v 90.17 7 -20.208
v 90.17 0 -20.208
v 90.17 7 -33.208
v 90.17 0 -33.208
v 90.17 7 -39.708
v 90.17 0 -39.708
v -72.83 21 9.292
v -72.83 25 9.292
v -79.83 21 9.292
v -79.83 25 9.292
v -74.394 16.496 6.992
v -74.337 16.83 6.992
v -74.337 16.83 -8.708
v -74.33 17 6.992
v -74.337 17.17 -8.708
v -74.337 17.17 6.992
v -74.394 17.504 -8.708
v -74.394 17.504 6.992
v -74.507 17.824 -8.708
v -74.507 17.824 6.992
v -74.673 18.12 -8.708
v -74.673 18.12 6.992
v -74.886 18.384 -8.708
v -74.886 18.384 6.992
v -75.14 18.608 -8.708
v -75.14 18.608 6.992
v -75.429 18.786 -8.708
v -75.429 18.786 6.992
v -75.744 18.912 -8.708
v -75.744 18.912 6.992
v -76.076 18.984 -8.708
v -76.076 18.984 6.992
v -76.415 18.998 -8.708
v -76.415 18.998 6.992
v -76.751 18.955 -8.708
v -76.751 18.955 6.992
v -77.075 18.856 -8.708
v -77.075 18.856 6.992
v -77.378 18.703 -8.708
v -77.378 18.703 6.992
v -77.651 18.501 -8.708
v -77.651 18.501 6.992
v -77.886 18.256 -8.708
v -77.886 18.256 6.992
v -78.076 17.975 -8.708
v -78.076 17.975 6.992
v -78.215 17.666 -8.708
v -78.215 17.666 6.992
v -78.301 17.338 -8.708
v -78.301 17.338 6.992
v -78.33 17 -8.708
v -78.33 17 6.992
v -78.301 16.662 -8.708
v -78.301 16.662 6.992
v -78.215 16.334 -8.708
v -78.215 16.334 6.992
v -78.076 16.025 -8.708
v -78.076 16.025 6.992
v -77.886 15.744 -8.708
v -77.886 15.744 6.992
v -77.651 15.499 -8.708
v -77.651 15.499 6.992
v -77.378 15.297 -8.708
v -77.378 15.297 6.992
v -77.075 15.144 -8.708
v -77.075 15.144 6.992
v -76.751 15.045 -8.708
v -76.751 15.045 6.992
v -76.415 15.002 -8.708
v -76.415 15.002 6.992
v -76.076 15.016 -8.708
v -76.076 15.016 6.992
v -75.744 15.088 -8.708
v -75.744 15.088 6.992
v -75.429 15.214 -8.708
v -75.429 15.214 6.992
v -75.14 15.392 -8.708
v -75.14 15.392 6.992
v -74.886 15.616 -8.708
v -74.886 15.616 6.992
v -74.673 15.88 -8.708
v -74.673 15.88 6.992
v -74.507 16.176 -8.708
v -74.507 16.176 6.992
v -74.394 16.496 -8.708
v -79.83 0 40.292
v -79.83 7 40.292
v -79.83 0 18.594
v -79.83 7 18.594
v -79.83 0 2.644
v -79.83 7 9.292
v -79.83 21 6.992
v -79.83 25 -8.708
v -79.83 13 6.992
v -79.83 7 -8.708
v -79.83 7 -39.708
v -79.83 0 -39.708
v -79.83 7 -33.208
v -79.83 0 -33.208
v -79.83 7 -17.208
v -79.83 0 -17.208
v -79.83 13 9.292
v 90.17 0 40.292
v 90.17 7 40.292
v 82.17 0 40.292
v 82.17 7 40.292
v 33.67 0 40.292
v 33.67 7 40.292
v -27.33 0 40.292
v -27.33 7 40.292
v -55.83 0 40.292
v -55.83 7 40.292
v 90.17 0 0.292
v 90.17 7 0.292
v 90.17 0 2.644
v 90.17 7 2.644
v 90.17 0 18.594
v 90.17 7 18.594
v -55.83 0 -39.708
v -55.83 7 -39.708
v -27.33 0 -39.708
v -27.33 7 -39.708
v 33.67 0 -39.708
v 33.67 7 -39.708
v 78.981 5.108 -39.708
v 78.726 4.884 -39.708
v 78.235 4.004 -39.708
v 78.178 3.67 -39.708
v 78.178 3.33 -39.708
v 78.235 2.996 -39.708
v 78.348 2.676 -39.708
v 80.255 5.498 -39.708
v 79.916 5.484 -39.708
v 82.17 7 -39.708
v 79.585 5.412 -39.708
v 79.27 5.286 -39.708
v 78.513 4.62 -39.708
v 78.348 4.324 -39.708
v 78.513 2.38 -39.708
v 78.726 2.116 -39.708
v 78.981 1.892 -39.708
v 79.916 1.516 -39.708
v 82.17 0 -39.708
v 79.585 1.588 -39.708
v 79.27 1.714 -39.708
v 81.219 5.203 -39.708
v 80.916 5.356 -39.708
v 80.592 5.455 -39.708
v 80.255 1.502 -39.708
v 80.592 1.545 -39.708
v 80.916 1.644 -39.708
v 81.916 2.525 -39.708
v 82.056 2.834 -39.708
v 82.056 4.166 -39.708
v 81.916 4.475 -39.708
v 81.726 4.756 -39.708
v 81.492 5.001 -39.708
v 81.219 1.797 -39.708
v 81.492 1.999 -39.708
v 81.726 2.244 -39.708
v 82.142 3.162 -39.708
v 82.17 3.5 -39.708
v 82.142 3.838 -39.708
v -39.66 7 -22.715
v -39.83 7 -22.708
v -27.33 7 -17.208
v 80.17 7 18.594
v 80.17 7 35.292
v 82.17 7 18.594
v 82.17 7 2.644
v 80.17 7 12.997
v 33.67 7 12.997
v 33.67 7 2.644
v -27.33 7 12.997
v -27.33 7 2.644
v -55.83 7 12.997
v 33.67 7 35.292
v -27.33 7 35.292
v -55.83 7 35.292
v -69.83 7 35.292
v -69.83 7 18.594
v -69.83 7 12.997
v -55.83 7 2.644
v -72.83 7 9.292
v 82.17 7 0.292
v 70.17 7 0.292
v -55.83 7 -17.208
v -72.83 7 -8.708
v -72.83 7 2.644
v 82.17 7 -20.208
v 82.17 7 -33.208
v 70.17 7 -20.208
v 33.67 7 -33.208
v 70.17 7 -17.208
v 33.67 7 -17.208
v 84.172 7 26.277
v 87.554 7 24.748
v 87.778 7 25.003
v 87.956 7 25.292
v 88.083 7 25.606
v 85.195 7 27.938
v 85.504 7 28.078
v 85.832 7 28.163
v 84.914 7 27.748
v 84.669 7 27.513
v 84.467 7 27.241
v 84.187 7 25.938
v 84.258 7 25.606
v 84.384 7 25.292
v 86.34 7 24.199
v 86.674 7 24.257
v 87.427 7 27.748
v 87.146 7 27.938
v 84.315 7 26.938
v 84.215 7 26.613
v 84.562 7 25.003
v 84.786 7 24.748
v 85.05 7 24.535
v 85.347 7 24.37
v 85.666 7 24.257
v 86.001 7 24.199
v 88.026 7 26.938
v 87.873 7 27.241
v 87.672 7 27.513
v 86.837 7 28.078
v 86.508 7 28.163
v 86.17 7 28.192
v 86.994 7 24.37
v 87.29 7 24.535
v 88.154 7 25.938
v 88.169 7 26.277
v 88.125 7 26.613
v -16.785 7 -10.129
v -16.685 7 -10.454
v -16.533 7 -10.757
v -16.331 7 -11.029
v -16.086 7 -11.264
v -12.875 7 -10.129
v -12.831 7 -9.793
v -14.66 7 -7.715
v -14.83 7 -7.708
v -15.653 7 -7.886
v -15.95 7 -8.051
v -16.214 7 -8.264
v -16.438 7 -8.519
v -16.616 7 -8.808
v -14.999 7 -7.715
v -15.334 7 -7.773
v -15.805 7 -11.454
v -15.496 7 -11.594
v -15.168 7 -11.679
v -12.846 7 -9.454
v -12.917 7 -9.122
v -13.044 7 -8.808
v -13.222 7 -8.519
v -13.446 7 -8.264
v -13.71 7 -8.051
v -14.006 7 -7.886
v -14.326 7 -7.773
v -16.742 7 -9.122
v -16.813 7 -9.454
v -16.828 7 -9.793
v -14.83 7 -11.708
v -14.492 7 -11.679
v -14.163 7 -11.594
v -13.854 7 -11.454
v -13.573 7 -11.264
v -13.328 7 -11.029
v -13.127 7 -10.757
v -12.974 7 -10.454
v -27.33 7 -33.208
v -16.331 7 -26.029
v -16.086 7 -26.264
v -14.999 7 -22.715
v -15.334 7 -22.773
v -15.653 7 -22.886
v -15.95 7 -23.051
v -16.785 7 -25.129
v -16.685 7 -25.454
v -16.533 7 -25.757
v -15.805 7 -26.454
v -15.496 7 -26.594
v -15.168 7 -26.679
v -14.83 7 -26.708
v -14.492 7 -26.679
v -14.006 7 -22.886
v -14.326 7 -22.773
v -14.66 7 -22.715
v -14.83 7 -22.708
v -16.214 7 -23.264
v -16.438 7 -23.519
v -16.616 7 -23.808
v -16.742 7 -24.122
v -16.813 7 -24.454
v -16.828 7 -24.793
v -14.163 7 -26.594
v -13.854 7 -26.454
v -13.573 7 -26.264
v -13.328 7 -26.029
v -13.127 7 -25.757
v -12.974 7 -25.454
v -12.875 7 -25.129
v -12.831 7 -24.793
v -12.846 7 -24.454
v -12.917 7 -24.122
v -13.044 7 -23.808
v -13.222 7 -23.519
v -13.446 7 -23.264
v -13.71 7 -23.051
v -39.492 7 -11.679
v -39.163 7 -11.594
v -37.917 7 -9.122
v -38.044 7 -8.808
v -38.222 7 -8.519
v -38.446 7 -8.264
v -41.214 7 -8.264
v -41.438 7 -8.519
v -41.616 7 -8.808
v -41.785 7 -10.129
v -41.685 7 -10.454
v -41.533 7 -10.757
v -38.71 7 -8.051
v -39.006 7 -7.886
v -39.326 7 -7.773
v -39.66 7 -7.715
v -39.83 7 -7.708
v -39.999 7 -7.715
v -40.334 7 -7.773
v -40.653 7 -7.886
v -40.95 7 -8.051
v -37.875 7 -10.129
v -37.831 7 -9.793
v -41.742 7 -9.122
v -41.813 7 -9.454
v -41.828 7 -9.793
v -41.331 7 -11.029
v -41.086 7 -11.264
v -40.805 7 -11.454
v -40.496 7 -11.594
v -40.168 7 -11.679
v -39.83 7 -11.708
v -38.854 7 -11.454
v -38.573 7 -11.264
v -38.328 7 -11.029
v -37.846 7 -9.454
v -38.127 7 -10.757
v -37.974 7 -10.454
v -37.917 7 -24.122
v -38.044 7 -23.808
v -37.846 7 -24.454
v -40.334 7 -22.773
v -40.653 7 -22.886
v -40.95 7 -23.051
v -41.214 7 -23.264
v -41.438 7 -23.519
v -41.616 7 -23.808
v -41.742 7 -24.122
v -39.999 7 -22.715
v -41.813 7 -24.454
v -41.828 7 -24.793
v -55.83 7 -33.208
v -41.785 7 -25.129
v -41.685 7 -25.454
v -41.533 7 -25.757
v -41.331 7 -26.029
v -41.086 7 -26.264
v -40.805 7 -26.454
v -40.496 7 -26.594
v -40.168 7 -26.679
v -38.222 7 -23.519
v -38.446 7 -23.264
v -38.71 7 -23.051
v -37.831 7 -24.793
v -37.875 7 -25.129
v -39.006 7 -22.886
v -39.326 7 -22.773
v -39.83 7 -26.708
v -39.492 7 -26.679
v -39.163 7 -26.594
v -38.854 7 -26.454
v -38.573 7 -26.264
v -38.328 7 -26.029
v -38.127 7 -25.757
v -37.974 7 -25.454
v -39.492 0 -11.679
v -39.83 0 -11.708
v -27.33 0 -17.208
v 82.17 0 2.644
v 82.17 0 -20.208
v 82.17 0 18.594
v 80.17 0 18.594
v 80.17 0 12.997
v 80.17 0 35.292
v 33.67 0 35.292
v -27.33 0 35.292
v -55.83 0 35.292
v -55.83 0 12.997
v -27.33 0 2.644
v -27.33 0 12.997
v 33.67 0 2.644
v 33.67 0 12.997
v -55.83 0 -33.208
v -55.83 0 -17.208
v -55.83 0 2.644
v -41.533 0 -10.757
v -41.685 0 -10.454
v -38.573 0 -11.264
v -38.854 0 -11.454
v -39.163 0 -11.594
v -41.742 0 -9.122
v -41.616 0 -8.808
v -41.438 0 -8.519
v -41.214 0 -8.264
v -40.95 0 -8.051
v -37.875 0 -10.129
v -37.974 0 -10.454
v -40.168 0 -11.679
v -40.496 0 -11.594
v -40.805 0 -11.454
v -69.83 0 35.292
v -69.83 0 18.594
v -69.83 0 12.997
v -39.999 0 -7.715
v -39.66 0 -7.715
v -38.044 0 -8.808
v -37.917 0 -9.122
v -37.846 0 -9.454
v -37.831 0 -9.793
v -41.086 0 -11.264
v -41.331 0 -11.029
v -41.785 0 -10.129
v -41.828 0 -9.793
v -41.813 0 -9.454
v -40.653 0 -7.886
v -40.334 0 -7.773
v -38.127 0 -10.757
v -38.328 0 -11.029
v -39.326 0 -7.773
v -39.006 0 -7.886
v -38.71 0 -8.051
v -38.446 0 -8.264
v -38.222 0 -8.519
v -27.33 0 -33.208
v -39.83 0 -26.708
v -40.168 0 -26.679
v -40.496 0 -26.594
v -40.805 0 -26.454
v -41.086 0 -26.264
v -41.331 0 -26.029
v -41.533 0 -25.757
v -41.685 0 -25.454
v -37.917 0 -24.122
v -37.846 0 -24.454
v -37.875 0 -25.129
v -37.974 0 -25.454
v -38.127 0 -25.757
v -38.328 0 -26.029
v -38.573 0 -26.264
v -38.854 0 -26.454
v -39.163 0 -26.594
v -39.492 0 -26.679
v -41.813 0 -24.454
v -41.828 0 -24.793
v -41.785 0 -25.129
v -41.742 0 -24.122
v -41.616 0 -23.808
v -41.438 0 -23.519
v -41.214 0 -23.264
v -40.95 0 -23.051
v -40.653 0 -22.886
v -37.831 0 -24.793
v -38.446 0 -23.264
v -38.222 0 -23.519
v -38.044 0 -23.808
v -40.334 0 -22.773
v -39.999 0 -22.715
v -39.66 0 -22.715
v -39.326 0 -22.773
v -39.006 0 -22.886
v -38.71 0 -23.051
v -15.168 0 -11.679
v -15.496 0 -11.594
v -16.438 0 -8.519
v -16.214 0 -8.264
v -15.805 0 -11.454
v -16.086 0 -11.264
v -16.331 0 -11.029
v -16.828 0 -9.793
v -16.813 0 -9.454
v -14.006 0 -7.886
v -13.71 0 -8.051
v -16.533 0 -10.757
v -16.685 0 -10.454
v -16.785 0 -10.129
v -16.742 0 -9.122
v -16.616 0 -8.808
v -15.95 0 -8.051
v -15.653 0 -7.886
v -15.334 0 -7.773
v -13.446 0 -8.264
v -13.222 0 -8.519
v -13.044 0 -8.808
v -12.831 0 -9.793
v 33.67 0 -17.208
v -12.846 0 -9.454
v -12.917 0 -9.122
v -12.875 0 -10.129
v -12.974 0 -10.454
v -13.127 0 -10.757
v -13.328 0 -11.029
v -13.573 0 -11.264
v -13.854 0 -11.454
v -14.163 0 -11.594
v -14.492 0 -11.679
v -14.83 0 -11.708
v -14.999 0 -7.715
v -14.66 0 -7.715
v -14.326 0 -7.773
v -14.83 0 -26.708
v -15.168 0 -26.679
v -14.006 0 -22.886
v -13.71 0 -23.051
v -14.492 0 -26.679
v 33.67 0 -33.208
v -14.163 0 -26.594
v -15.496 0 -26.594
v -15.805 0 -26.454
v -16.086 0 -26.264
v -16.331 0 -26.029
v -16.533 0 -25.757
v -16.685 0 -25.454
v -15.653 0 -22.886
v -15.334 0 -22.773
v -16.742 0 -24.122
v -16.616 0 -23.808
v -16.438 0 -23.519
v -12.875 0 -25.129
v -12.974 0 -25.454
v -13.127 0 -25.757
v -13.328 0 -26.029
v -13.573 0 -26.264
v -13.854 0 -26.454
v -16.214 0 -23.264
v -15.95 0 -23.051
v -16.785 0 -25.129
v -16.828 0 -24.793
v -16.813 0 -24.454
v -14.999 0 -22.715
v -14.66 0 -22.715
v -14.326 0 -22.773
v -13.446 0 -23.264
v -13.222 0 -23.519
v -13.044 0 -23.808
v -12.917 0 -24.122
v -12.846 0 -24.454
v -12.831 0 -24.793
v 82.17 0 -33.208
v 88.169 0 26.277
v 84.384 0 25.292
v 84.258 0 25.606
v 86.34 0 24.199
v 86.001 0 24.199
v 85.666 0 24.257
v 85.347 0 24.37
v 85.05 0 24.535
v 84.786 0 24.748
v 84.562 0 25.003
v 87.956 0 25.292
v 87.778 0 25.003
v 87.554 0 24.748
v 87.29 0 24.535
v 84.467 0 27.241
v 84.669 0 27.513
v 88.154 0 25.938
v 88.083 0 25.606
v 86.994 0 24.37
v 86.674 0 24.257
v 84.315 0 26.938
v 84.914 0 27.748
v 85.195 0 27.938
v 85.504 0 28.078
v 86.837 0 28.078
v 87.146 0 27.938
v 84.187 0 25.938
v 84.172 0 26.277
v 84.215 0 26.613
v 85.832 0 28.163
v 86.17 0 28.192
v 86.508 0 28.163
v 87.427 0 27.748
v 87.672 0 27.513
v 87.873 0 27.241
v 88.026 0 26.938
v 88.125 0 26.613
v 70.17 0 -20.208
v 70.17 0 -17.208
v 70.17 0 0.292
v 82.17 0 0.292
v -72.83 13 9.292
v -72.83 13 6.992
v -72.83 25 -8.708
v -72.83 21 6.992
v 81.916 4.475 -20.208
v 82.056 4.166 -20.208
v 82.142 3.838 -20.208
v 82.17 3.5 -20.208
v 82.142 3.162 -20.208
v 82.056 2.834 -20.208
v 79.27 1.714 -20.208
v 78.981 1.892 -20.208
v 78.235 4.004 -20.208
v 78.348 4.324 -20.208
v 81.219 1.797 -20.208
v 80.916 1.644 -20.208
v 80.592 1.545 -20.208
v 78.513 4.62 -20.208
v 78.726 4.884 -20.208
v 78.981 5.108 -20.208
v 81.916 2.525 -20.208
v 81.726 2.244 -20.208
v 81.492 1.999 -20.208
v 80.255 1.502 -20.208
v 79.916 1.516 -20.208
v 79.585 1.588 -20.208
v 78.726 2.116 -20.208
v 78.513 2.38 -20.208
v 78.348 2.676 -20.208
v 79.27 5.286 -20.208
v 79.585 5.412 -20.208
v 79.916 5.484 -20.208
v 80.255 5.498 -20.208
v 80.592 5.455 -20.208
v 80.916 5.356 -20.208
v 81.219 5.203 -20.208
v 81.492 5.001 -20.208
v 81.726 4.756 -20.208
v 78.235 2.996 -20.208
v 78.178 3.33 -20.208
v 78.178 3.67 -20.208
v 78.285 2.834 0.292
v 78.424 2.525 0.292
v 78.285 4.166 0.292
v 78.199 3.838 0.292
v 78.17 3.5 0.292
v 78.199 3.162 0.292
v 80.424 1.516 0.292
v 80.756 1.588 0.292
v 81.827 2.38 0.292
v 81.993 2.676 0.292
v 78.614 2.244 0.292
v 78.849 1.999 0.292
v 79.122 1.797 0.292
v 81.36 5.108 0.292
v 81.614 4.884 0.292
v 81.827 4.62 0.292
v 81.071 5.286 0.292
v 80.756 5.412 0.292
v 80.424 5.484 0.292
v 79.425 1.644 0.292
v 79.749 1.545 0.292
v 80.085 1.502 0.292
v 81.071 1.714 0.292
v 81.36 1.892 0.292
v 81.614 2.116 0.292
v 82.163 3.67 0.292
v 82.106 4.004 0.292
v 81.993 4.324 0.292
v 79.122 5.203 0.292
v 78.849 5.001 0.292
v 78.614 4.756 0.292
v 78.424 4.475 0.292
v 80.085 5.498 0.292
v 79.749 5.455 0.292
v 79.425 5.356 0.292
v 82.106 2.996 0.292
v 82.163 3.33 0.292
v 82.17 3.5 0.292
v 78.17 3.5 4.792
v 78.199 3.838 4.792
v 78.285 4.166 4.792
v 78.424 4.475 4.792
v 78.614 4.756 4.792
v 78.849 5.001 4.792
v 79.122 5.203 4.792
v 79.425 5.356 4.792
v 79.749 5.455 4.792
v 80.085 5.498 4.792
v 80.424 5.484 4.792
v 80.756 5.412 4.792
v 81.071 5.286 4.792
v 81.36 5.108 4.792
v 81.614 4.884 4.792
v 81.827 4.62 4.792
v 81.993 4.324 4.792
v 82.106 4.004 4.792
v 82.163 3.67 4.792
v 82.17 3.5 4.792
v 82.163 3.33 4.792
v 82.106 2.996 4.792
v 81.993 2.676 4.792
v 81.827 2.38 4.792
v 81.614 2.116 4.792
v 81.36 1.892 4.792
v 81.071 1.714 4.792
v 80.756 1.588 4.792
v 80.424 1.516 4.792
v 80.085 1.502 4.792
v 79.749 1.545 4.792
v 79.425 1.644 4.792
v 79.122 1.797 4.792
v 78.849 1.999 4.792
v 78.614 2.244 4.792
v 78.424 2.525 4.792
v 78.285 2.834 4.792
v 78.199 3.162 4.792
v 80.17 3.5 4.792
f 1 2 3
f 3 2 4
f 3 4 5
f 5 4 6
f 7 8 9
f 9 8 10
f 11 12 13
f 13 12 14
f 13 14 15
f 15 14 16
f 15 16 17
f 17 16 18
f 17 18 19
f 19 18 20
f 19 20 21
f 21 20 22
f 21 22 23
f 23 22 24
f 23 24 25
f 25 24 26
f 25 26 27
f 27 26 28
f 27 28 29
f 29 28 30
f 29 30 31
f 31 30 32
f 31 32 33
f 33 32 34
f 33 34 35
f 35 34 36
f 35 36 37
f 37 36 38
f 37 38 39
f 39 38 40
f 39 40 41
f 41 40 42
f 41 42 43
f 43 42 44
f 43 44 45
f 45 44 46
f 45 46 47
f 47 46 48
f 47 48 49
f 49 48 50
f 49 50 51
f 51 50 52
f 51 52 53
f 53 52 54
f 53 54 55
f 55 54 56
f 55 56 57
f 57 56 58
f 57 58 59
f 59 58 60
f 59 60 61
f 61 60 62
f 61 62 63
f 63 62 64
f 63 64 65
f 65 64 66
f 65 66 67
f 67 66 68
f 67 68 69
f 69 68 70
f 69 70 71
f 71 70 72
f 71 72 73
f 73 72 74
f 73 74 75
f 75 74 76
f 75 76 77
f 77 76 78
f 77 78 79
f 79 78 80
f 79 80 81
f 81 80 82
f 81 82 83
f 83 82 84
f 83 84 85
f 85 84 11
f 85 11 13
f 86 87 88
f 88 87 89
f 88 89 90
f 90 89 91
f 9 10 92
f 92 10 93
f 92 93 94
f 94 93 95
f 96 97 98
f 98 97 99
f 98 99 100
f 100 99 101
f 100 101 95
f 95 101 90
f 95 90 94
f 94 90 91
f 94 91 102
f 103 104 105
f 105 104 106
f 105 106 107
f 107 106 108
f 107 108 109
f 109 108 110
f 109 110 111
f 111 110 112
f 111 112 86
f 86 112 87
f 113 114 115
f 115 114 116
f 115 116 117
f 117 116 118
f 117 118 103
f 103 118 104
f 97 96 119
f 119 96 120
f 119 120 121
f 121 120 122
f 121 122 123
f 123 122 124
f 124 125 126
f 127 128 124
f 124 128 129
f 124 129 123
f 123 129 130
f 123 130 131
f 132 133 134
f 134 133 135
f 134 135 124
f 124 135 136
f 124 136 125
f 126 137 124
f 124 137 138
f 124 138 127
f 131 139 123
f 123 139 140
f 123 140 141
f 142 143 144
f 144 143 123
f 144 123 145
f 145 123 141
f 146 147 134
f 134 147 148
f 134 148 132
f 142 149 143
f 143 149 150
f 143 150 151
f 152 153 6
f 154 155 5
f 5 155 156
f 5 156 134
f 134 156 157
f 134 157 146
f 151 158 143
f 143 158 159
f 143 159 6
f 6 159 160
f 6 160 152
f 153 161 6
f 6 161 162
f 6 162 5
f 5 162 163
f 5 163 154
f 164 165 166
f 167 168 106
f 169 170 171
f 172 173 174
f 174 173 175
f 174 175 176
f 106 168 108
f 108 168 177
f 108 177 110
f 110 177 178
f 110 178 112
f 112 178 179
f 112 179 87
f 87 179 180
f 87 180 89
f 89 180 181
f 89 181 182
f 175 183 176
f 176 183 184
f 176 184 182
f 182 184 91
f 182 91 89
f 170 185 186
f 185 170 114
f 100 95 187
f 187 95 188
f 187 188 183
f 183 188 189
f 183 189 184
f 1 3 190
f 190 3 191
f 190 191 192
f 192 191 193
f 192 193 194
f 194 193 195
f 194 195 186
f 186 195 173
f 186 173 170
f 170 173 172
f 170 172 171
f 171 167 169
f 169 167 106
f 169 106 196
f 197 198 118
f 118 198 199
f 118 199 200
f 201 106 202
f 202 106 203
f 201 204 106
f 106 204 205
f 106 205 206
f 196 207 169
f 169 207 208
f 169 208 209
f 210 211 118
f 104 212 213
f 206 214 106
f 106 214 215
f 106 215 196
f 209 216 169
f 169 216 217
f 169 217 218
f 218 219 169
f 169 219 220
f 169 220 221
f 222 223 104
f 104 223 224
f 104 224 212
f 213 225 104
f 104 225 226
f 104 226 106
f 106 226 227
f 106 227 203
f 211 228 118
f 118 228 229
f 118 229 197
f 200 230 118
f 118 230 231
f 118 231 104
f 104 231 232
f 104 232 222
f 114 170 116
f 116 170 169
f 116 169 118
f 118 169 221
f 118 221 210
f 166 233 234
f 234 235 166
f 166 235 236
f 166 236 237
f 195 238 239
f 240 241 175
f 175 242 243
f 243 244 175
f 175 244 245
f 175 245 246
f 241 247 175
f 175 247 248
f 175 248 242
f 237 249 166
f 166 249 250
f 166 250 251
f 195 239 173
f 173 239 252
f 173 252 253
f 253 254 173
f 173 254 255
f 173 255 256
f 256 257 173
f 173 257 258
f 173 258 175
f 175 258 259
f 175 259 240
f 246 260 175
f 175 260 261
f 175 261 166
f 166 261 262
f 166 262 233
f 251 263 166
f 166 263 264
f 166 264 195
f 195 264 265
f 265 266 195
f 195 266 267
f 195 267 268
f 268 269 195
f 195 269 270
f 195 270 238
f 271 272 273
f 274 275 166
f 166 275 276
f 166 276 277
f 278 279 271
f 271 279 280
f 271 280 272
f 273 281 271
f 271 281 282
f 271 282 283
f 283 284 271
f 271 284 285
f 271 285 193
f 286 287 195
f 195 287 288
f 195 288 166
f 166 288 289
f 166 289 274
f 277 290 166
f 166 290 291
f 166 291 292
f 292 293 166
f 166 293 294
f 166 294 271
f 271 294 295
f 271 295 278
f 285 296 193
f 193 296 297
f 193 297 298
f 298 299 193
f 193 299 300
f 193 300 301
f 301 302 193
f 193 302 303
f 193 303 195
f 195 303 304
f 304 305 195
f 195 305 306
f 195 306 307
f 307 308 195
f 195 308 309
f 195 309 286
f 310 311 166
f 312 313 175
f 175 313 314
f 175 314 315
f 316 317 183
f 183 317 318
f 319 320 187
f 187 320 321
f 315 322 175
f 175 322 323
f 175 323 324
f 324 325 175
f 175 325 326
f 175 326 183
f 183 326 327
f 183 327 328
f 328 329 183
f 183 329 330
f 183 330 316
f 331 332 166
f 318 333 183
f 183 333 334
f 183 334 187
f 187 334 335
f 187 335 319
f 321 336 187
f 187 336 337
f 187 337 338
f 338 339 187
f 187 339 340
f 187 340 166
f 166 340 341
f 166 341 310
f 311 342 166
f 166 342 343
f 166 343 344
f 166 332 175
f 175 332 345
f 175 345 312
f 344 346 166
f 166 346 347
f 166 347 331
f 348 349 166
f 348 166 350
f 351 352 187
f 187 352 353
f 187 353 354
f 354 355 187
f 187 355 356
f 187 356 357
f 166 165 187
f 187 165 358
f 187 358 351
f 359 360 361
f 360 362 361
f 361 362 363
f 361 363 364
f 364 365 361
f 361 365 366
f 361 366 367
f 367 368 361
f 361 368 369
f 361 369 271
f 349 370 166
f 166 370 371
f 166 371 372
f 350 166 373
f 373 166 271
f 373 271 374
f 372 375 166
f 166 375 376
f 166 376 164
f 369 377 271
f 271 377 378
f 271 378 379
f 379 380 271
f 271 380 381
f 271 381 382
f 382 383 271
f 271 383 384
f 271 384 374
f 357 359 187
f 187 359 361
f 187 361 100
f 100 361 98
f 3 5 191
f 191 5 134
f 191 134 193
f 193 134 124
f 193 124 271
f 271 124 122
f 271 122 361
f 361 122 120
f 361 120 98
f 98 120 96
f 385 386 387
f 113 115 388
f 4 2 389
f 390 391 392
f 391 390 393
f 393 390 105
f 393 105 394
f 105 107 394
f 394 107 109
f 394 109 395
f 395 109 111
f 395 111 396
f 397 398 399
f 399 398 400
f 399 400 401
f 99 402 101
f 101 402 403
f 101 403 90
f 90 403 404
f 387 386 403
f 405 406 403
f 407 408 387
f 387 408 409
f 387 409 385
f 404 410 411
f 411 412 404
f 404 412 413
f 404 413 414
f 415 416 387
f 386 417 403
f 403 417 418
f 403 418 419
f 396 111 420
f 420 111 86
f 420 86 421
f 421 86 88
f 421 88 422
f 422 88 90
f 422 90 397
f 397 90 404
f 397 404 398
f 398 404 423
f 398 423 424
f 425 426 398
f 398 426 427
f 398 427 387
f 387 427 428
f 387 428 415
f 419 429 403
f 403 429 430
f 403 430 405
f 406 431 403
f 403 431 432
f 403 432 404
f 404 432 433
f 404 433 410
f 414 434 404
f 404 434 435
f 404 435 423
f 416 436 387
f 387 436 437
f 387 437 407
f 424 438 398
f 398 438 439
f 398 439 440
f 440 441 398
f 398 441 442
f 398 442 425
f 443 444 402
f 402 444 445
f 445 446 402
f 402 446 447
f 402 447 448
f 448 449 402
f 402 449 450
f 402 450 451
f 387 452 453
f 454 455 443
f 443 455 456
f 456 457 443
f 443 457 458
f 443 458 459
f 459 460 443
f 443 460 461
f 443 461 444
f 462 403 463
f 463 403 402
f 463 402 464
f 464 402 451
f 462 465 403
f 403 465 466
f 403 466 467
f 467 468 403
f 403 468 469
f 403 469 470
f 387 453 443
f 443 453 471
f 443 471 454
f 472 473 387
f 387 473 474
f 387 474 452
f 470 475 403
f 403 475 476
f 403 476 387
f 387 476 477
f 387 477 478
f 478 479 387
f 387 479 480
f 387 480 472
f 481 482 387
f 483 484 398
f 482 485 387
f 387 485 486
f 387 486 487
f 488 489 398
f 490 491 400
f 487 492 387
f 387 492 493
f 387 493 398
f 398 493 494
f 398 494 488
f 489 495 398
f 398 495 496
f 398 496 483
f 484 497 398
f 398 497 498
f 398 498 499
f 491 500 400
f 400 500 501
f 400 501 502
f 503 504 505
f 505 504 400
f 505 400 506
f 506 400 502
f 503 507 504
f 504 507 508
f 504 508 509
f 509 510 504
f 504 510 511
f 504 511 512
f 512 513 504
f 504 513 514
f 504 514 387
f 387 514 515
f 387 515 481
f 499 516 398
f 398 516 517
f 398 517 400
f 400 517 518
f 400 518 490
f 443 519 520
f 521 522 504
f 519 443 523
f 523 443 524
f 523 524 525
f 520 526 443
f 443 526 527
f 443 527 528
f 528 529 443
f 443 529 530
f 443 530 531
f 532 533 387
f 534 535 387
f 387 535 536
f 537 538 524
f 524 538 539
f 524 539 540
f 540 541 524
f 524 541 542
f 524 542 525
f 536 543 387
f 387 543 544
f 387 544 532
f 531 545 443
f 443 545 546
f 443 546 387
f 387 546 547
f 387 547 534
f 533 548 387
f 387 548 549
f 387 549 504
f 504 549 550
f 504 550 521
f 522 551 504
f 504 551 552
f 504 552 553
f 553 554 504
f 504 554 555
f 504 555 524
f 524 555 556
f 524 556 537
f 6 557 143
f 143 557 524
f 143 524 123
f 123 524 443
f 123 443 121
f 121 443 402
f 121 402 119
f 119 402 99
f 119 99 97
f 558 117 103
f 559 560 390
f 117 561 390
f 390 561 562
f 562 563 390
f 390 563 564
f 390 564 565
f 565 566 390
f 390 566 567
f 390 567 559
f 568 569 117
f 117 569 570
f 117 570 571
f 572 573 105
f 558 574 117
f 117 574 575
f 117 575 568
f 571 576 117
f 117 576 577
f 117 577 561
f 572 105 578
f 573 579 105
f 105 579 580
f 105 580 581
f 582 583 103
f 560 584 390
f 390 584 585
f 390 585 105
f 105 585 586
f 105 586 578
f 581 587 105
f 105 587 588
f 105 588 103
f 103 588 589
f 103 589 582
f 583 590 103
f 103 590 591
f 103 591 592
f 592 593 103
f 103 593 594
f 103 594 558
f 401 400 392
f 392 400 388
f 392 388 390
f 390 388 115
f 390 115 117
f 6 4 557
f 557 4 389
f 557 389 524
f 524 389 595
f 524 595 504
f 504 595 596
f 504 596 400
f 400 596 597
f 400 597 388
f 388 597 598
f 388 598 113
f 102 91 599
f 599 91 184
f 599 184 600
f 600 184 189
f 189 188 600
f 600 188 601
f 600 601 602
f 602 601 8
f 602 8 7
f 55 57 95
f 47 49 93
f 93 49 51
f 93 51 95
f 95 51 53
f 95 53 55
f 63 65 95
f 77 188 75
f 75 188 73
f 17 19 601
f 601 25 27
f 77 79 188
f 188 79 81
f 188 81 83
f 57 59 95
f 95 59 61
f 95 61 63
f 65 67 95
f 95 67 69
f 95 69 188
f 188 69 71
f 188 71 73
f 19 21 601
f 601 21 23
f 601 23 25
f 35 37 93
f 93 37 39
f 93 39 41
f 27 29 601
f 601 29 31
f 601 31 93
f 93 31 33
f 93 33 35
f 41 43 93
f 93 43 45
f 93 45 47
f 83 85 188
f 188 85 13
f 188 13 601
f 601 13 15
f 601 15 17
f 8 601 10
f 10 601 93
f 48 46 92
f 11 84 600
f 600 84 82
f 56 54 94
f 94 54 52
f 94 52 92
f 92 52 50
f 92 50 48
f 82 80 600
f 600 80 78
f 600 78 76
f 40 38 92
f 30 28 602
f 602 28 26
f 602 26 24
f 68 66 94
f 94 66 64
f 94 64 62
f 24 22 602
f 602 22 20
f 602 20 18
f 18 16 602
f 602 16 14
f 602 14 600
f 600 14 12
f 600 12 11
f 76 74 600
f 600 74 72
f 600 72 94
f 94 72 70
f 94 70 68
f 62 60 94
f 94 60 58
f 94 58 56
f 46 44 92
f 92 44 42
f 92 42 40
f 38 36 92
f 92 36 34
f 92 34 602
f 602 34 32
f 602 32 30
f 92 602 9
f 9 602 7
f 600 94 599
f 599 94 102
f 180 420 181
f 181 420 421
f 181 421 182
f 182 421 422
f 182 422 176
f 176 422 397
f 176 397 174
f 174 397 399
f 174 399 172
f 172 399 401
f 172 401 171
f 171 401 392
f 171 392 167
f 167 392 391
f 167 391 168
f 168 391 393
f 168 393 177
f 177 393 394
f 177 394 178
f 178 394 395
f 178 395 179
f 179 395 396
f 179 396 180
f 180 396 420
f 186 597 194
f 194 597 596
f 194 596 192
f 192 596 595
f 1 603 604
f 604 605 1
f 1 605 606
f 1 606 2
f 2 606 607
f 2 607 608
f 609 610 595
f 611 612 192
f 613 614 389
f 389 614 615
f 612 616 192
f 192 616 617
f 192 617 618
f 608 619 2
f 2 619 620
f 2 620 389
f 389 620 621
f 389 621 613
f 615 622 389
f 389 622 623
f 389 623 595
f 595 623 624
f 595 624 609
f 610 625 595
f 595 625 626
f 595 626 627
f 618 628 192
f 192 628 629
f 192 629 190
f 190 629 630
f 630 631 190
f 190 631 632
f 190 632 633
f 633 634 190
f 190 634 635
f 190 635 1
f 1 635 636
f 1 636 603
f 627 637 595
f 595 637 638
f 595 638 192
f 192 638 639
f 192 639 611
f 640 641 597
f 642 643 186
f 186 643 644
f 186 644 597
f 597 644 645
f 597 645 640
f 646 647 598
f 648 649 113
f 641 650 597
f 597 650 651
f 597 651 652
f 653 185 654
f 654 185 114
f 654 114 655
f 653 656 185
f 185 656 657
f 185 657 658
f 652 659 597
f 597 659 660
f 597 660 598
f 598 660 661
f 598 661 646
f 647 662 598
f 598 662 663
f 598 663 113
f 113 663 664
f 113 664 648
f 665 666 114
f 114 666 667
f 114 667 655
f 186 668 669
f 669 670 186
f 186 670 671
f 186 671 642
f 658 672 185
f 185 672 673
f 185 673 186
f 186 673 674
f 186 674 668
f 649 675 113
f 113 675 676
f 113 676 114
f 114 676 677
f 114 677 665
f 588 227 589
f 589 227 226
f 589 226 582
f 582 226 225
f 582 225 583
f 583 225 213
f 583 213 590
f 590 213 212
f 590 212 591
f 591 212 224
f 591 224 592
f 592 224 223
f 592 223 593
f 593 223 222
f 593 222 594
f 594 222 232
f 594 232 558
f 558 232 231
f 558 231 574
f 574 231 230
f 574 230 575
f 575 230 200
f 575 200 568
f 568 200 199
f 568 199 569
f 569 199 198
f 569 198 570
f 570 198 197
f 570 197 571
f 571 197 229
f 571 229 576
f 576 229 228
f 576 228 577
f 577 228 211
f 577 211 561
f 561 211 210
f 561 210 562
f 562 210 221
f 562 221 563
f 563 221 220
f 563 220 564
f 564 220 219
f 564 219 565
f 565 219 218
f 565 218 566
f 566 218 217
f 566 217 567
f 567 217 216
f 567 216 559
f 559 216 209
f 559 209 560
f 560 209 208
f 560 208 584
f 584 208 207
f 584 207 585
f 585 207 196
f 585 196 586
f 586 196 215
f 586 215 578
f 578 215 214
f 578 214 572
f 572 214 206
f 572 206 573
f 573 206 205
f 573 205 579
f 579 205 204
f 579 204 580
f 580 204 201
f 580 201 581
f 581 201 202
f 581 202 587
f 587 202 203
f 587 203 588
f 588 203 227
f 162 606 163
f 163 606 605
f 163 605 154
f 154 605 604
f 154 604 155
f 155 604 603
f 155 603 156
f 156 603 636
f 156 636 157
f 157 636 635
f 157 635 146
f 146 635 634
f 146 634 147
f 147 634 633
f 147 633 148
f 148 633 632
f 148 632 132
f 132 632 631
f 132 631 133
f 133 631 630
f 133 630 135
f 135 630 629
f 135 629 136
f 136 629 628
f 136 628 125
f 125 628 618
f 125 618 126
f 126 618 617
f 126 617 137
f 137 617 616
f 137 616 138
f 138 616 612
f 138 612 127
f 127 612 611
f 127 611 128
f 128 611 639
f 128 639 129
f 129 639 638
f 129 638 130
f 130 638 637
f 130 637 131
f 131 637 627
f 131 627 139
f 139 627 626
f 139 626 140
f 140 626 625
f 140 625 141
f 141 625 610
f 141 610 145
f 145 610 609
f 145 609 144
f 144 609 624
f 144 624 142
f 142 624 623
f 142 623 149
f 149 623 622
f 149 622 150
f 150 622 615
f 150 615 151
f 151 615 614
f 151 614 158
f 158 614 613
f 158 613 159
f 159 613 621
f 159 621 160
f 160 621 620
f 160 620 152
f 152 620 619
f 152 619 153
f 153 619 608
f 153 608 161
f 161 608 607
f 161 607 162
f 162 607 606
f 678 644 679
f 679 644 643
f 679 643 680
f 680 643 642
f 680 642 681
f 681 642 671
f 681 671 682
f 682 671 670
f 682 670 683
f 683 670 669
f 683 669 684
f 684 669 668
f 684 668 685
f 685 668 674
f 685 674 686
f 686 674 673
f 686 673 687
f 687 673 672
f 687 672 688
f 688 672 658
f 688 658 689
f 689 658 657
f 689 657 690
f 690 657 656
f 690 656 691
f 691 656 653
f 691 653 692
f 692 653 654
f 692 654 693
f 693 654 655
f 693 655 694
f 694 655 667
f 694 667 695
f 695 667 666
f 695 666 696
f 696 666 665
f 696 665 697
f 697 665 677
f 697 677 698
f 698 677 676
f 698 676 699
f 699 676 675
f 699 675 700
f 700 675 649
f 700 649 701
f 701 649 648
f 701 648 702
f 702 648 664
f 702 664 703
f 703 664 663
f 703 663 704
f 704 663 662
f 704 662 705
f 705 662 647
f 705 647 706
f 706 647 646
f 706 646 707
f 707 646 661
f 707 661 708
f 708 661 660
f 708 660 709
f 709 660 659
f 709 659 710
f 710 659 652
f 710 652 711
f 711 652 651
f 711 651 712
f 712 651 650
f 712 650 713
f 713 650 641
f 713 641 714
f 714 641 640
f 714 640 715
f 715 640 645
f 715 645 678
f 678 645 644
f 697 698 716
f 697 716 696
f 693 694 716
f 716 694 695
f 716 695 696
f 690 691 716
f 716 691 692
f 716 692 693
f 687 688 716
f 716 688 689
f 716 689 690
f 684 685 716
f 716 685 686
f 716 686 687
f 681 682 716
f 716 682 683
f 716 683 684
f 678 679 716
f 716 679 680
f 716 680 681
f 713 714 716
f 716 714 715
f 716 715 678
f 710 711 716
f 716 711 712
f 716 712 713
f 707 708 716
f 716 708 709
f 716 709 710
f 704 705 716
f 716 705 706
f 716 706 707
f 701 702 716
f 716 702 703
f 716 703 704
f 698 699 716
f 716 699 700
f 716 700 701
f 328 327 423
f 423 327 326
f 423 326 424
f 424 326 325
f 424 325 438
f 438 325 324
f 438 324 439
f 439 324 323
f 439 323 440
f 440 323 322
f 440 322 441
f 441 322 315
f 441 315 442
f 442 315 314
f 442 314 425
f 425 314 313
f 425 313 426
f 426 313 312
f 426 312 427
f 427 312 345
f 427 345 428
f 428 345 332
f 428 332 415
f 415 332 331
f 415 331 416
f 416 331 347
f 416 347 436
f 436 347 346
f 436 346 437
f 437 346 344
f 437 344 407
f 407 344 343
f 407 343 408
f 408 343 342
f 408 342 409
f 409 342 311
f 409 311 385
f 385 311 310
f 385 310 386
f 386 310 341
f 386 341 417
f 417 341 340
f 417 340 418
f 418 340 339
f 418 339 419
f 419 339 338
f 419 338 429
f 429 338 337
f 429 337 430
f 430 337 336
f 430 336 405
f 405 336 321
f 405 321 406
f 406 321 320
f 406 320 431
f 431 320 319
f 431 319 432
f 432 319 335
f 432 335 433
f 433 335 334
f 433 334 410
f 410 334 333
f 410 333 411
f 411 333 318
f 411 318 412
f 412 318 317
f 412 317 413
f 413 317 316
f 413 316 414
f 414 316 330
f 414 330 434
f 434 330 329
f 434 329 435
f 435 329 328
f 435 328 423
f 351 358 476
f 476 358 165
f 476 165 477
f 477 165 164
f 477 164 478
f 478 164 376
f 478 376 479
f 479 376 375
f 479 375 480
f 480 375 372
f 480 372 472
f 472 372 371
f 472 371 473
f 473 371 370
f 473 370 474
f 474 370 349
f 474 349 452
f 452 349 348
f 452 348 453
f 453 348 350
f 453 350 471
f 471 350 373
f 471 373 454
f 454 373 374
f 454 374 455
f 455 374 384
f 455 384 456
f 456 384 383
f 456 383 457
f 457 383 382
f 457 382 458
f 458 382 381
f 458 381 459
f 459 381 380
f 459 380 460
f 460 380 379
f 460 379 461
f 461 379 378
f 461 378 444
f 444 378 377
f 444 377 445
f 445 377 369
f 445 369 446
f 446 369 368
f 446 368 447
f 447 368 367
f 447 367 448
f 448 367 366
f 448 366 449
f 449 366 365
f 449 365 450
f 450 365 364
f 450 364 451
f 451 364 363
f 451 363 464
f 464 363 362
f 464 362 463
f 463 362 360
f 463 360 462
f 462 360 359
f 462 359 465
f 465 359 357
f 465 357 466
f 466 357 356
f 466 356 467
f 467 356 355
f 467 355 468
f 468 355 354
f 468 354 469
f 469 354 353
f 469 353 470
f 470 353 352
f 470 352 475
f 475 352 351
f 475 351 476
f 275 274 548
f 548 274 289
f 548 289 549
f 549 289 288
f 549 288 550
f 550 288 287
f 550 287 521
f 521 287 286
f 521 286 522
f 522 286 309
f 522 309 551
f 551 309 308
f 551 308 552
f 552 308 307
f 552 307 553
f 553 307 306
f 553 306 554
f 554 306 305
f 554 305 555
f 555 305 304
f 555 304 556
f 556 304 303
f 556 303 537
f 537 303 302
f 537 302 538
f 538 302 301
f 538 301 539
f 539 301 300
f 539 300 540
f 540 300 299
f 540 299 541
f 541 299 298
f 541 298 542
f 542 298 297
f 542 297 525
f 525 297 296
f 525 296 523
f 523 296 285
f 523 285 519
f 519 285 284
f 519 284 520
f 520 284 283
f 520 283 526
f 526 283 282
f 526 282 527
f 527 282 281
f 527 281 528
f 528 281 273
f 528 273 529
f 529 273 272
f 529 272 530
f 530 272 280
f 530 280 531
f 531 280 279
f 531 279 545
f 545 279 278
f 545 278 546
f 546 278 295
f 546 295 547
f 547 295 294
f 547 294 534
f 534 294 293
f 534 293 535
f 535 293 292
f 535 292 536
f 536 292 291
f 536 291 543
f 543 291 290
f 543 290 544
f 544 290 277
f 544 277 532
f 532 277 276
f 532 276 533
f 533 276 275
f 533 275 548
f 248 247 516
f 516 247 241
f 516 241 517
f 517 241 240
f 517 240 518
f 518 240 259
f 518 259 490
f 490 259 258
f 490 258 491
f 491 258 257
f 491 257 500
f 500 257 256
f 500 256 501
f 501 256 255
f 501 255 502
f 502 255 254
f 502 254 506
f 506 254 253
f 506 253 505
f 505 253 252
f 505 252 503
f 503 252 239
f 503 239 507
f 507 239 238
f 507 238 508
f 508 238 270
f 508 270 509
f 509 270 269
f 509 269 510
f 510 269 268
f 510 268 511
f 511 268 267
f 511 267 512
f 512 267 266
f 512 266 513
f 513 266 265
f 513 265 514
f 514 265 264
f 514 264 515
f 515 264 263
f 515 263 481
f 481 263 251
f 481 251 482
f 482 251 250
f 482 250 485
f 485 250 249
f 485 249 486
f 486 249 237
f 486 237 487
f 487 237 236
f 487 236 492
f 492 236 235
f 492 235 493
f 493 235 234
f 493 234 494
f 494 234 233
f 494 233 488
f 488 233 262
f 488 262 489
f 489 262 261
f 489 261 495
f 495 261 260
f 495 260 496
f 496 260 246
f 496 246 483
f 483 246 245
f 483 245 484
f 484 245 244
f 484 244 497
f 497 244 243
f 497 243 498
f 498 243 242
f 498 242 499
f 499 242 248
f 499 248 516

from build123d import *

# Parameters (mm, degrees)
SKETCH1_W           = 170
SKETCH1_H           = 80
BOSS_EXTRUDE1_DEPTH = 7
SKETCH2_W           = 7
SKETCH2_H           = 18
BOSS_EXTRUDE2_DEPTH = 18
SKETCH3_R           = 2
CUT_EXTRUDE1_DEPTH  = 20
SKETCH4_W           = 7
SKETCH4_H           = 8
CUT_EXTRUDE2_DEPTH  = 2.3
SKETCH5_W           = 150
SKETCH5_H           = 22.295371368
CUT_EXTRUDE3_DEPTH  = 11
SKETCH6_R           = 2
SKETCH6_W           = 20
SKETCH6_H           = 20.5
CUT_EXTRUDE4_DEPTH  = 11
SKETCH7_R           = 2
CUT_EXTRUDE5_DEPTH  = 25
CUT_EXTRUDE6_START  = 25
SKETCH7_2_R         = 2
CUT_EXTRUDE6_DEPTH  = 25
SKETCH10_R          = 2
CUT_EXTRUDE7_DEPTH  = 10


with BuildPart() as part:
    # Sketch1 → Boss-Extrude1 (new body)
    with BuildSketch(Plane(origin=(0, 0, 0), x_dir=(1, 0, 0), z_dir=(0, 1, 0))):
        with Locations((5.170316302, -0.291970803)):
            Rectangle(SKETCH1_W, SKETCH1_H)
    extrude(amount=BOSS_EXTRUDE1_DEPTH)

    # Sketch2 → Boss-Extrude2 (add)
    with BuildSketch(Plane(origin=(0, 7, 0), x_dir=(1, 0, 0), z_dir=(0, 1, 0))):
        with Locations((-76.329683698, -0.291970803)):
            Rectangle(SKETCH2_W, SKETCH2_H)
    extrude(amount=BOSS_EXTRUDE2_DEPTH)

    # Sketch3 → Cut-Extrude1 (cut)
    with BuildSketch(Plane(origin=(0, 0, -8.708029197), x_dir=(-1, 0, 0), z_dir=(0, 0, -1))):
        with Locations((76.329683698, 17)):
            Circle(SKETCH3_R)
    extrude(amount=-CUT_EXTRUDE1_DEPTH, mode=Mode.SUBTRACT)

    # Sketch4 → Cut-Extrude2 (cut)
    with BuildSketch(Plane.XY.offset(9.291970803)):
        with Locations((-76.329683698, 17)):
            Rectangle(SKETCH4_W, SKETCH4_H)
    extrude(amount=-CUT_EXTRUDE2_DEPTH, mode=Mode.SUBTRACT)

    # Sketch5 → Cut-Extrude3 (cut)
    with BuildSketch(Plane(origin=(0, 7, 0), x_dir=(1, 0, 0), z_dir=(0, 1, 0))):
        with Locations((5.170316302, -24.144285119)):
            Rectangle(SKETCH5_W, SKETCH5_H)
    extrude(amount=-CUT_EXTRUDE3_DEPTH, mode=Mode.SUBTRACT)

    # Sketch6 → Cut-Extrude4 (cut)
    with BuildSketch(Plane(origin=(0, 7, 0), x_dir=(1, 0, 0), z_dir=(0, 1, 0))):
        with Locations((86.170316302, -26.191970803)):
            Circle(SKETCH6_R)
        with Locations((80.170316302, 9.958029197)):
            Rectangle(SKETCH6_W, SKETCH6_H)
    extrude(amount=-CUT_EXTRUDE4_DEPTH, mode=Mode.SUBTRACT)

    # Sketch7 → Cut-Extrude5 (cut)
    with BuildSketch(Plane.XY.offset(-20.208029197)):
        with Locations((80.170316302, 3.5)):
            Circle(SKETCH7_R)
    extrude(amount=-CUT_EXTRUDE5_DEPTH, mode=Mode.SUBTRACT)

    # Sketch7<2> → Cut-Extrude6 (cut)
    with BuildSketch(Plane.XY.offset(-20.208029197).offset(CUT_EXTRUDE6_START)):
        with Locations((80.170316302, 3.5)):
            Circle(SKETCH7_2_R)
    extrude(amount=-CUT_EXTRUDE6_DEPTH, mode=Mode.SUBTRACT)

    # Sketch10 → Cut-Extrude7 (cut)
    with BuildSketch(Plane.XZ):
        with Locations((-39.829683698, -9.708029197)):
            Circle(SKETCH10_R)
        with Locations((-39.829683698, -24.708029197)):
            Circle(SKETCH10_R)
        with Locations((-14.829683698, -24.708029197)):
            Circle(SKETCH10_R)
        with Locations((-14.829683698, -9.708029197)):
            Circle(SKETCH10_R)
    extrude(amount=-CUT_EXTRUDE7_DEPTH, mode=Mode.SUBTRACT)


solid = part.part
